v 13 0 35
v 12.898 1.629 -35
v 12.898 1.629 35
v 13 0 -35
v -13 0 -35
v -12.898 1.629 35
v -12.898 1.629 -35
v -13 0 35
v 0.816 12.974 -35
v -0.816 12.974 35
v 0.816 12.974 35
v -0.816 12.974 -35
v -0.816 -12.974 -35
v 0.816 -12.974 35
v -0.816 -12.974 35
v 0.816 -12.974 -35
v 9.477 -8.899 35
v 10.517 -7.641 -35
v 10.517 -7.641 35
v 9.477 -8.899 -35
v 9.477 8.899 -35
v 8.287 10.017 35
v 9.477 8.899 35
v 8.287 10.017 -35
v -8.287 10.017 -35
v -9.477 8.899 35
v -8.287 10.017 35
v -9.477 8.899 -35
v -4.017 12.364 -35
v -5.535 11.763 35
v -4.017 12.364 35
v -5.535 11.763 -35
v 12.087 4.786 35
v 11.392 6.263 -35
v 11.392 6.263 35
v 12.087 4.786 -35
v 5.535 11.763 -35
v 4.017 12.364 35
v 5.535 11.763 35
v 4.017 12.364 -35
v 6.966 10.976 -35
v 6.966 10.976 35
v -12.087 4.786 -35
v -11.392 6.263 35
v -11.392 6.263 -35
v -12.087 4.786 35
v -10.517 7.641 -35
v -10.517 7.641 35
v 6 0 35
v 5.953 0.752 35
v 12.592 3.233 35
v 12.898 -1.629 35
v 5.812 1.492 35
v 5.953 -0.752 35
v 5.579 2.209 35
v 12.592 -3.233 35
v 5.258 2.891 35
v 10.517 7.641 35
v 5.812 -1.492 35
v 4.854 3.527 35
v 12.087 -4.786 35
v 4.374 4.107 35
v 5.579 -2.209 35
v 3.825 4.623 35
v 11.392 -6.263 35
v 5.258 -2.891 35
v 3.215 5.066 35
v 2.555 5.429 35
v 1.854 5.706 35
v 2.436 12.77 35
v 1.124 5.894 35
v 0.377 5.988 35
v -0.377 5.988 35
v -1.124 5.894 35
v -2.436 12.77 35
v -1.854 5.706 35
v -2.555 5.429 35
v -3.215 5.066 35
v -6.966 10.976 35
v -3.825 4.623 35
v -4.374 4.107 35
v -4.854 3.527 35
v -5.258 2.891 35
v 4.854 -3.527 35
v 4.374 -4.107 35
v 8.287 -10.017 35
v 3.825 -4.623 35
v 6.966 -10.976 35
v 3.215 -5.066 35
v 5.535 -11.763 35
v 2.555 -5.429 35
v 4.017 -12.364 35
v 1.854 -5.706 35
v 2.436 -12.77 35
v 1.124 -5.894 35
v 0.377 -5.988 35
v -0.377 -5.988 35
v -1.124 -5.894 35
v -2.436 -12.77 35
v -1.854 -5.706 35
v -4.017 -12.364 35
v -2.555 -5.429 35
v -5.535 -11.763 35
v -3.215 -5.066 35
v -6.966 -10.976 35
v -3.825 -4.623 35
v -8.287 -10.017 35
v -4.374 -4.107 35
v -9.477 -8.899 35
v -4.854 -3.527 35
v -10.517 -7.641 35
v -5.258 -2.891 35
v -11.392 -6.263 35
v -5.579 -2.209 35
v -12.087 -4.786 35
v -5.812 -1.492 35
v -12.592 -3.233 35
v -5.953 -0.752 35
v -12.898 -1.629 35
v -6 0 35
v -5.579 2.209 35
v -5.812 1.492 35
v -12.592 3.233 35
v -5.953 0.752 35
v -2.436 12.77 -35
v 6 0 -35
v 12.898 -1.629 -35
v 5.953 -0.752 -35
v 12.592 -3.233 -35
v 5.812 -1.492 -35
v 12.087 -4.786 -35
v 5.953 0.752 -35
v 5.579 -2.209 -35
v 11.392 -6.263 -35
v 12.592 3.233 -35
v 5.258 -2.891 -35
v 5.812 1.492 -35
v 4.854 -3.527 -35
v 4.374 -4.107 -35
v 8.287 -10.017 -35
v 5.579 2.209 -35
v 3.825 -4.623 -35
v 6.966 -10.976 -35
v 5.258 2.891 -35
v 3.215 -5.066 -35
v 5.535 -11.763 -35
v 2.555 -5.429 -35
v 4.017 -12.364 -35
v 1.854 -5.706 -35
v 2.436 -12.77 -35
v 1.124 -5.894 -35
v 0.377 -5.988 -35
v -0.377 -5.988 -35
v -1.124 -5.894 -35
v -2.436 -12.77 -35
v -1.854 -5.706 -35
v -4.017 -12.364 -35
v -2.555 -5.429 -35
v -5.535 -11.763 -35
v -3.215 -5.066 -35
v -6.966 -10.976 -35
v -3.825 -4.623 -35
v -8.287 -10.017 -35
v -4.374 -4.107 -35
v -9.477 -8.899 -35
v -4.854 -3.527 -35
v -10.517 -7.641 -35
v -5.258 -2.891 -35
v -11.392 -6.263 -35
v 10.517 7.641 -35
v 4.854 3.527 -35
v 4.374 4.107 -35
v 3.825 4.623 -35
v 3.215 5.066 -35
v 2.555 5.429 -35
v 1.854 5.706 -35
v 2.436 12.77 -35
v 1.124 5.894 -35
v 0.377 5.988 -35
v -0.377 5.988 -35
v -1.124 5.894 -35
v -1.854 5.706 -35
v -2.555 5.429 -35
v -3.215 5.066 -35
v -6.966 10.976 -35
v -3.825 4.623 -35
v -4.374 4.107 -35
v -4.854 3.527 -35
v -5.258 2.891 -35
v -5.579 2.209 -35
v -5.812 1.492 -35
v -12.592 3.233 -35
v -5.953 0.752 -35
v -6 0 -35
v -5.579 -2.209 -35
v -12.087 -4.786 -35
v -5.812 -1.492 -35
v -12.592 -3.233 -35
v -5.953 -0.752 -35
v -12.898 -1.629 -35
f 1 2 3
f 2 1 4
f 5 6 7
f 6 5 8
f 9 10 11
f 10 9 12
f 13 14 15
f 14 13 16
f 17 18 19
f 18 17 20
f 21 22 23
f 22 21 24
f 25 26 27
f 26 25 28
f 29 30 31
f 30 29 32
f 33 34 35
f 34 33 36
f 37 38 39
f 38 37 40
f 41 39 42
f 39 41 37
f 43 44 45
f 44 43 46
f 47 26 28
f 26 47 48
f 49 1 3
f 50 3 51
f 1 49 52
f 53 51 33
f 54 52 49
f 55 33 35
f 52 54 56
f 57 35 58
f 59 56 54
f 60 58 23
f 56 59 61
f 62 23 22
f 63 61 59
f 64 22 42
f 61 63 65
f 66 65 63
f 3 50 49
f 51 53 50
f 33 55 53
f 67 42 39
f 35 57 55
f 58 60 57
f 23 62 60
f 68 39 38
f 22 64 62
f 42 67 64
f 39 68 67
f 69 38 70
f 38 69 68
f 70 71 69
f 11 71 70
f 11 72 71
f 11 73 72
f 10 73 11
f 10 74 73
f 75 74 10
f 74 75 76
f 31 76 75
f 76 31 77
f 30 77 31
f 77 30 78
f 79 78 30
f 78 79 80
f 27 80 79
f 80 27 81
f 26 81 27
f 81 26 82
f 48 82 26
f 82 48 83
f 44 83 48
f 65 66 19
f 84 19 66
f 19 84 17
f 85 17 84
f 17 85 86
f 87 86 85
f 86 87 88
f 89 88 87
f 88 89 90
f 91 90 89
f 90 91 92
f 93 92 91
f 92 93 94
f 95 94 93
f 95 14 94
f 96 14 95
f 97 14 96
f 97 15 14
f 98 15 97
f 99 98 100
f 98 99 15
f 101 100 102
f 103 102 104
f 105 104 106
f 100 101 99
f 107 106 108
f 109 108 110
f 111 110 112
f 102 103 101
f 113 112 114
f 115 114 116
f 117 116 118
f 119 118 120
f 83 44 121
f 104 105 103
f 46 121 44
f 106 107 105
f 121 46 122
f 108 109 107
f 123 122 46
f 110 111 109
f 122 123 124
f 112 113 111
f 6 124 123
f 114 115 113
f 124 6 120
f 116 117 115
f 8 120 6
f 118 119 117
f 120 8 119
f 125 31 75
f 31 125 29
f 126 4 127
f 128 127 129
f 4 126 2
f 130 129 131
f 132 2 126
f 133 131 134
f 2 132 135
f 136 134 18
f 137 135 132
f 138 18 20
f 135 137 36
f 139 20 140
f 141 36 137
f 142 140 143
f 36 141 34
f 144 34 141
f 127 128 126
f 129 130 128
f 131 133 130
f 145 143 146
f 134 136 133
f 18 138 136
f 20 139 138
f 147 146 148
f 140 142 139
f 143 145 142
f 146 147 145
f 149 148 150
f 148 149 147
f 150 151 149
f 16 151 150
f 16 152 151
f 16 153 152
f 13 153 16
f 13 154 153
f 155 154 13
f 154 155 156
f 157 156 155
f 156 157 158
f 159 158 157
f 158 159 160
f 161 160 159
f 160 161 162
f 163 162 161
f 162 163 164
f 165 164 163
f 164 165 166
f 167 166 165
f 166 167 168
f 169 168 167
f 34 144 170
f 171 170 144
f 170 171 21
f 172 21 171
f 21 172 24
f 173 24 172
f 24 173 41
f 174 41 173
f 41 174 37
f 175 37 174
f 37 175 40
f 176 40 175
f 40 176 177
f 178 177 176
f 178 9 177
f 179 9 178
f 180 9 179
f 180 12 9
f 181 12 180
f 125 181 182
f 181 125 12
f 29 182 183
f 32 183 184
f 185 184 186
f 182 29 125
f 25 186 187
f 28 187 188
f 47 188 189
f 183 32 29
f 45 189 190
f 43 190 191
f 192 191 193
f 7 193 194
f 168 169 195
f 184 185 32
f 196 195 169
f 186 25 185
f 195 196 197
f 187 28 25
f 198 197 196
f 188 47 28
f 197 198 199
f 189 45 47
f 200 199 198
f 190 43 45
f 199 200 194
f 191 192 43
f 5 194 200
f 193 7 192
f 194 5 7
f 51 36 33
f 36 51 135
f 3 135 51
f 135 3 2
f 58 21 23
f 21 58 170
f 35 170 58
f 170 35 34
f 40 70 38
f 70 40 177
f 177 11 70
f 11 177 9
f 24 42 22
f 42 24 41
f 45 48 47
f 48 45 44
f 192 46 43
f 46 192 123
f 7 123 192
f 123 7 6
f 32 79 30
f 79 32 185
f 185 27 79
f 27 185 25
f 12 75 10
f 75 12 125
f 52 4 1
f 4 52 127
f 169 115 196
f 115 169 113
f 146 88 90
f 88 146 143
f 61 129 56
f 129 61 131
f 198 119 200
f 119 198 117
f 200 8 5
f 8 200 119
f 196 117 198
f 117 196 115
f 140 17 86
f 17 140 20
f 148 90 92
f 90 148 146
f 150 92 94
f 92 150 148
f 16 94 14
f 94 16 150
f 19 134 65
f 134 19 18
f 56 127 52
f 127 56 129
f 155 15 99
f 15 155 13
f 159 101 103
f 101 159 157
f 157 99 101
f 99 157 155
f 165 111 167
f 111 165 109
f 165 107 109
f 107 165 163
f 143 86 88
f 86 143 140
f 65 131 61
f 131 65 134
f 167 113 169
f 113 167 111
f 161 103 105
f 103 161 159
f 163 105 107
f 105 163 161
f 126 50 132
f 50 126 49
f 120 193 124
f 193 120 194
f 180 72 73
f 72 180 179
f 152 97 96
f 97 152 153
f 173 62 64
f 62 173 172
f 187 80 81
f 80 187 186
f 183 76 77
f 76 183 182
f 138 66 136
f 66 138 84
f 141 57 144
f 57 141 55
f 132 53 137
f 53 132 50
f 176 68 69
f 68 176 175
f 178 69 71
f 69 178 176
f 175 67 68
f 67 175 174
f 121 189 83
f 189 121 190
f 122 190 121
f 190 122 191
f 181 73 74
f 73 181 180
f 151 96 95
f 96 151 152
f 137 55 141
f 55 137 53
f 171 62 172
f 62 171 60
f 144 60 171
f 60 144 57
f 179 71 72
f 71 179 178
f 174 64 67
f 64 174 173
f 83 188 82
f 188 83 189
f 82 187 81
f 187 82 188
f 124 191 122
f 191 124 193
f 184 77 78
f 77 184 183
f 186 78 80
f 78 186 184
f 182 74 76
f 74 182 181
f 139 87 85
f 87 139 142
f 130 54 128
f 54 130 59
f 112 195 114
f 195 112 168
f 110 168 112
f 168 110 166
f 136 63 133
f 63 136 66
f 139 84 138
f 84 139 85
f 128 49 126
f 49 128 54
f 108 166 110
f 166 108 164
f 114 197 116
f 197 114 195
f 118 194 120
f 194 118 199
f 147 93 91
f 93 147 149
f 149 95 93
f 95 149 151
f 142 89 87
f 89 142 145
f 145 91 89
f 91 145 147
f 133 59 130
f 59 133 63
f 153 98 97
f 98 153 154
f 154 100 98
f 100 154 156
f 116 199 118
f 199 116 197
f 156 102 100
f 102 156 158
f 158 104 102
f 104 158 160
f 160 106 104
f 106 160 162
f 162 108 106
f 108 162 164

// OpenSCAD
$fn = 50;


difference() {
	union() {
		translate(v = [0, 0, -35.0000000000]) {
			cylinder(h = 70, r = 13.0000000000);
		}
	}
	union() {
		translate(v = [0, 0, -100.0000000000]) {
			cylinder(h = 200, r = 6);
		}
	}
}
